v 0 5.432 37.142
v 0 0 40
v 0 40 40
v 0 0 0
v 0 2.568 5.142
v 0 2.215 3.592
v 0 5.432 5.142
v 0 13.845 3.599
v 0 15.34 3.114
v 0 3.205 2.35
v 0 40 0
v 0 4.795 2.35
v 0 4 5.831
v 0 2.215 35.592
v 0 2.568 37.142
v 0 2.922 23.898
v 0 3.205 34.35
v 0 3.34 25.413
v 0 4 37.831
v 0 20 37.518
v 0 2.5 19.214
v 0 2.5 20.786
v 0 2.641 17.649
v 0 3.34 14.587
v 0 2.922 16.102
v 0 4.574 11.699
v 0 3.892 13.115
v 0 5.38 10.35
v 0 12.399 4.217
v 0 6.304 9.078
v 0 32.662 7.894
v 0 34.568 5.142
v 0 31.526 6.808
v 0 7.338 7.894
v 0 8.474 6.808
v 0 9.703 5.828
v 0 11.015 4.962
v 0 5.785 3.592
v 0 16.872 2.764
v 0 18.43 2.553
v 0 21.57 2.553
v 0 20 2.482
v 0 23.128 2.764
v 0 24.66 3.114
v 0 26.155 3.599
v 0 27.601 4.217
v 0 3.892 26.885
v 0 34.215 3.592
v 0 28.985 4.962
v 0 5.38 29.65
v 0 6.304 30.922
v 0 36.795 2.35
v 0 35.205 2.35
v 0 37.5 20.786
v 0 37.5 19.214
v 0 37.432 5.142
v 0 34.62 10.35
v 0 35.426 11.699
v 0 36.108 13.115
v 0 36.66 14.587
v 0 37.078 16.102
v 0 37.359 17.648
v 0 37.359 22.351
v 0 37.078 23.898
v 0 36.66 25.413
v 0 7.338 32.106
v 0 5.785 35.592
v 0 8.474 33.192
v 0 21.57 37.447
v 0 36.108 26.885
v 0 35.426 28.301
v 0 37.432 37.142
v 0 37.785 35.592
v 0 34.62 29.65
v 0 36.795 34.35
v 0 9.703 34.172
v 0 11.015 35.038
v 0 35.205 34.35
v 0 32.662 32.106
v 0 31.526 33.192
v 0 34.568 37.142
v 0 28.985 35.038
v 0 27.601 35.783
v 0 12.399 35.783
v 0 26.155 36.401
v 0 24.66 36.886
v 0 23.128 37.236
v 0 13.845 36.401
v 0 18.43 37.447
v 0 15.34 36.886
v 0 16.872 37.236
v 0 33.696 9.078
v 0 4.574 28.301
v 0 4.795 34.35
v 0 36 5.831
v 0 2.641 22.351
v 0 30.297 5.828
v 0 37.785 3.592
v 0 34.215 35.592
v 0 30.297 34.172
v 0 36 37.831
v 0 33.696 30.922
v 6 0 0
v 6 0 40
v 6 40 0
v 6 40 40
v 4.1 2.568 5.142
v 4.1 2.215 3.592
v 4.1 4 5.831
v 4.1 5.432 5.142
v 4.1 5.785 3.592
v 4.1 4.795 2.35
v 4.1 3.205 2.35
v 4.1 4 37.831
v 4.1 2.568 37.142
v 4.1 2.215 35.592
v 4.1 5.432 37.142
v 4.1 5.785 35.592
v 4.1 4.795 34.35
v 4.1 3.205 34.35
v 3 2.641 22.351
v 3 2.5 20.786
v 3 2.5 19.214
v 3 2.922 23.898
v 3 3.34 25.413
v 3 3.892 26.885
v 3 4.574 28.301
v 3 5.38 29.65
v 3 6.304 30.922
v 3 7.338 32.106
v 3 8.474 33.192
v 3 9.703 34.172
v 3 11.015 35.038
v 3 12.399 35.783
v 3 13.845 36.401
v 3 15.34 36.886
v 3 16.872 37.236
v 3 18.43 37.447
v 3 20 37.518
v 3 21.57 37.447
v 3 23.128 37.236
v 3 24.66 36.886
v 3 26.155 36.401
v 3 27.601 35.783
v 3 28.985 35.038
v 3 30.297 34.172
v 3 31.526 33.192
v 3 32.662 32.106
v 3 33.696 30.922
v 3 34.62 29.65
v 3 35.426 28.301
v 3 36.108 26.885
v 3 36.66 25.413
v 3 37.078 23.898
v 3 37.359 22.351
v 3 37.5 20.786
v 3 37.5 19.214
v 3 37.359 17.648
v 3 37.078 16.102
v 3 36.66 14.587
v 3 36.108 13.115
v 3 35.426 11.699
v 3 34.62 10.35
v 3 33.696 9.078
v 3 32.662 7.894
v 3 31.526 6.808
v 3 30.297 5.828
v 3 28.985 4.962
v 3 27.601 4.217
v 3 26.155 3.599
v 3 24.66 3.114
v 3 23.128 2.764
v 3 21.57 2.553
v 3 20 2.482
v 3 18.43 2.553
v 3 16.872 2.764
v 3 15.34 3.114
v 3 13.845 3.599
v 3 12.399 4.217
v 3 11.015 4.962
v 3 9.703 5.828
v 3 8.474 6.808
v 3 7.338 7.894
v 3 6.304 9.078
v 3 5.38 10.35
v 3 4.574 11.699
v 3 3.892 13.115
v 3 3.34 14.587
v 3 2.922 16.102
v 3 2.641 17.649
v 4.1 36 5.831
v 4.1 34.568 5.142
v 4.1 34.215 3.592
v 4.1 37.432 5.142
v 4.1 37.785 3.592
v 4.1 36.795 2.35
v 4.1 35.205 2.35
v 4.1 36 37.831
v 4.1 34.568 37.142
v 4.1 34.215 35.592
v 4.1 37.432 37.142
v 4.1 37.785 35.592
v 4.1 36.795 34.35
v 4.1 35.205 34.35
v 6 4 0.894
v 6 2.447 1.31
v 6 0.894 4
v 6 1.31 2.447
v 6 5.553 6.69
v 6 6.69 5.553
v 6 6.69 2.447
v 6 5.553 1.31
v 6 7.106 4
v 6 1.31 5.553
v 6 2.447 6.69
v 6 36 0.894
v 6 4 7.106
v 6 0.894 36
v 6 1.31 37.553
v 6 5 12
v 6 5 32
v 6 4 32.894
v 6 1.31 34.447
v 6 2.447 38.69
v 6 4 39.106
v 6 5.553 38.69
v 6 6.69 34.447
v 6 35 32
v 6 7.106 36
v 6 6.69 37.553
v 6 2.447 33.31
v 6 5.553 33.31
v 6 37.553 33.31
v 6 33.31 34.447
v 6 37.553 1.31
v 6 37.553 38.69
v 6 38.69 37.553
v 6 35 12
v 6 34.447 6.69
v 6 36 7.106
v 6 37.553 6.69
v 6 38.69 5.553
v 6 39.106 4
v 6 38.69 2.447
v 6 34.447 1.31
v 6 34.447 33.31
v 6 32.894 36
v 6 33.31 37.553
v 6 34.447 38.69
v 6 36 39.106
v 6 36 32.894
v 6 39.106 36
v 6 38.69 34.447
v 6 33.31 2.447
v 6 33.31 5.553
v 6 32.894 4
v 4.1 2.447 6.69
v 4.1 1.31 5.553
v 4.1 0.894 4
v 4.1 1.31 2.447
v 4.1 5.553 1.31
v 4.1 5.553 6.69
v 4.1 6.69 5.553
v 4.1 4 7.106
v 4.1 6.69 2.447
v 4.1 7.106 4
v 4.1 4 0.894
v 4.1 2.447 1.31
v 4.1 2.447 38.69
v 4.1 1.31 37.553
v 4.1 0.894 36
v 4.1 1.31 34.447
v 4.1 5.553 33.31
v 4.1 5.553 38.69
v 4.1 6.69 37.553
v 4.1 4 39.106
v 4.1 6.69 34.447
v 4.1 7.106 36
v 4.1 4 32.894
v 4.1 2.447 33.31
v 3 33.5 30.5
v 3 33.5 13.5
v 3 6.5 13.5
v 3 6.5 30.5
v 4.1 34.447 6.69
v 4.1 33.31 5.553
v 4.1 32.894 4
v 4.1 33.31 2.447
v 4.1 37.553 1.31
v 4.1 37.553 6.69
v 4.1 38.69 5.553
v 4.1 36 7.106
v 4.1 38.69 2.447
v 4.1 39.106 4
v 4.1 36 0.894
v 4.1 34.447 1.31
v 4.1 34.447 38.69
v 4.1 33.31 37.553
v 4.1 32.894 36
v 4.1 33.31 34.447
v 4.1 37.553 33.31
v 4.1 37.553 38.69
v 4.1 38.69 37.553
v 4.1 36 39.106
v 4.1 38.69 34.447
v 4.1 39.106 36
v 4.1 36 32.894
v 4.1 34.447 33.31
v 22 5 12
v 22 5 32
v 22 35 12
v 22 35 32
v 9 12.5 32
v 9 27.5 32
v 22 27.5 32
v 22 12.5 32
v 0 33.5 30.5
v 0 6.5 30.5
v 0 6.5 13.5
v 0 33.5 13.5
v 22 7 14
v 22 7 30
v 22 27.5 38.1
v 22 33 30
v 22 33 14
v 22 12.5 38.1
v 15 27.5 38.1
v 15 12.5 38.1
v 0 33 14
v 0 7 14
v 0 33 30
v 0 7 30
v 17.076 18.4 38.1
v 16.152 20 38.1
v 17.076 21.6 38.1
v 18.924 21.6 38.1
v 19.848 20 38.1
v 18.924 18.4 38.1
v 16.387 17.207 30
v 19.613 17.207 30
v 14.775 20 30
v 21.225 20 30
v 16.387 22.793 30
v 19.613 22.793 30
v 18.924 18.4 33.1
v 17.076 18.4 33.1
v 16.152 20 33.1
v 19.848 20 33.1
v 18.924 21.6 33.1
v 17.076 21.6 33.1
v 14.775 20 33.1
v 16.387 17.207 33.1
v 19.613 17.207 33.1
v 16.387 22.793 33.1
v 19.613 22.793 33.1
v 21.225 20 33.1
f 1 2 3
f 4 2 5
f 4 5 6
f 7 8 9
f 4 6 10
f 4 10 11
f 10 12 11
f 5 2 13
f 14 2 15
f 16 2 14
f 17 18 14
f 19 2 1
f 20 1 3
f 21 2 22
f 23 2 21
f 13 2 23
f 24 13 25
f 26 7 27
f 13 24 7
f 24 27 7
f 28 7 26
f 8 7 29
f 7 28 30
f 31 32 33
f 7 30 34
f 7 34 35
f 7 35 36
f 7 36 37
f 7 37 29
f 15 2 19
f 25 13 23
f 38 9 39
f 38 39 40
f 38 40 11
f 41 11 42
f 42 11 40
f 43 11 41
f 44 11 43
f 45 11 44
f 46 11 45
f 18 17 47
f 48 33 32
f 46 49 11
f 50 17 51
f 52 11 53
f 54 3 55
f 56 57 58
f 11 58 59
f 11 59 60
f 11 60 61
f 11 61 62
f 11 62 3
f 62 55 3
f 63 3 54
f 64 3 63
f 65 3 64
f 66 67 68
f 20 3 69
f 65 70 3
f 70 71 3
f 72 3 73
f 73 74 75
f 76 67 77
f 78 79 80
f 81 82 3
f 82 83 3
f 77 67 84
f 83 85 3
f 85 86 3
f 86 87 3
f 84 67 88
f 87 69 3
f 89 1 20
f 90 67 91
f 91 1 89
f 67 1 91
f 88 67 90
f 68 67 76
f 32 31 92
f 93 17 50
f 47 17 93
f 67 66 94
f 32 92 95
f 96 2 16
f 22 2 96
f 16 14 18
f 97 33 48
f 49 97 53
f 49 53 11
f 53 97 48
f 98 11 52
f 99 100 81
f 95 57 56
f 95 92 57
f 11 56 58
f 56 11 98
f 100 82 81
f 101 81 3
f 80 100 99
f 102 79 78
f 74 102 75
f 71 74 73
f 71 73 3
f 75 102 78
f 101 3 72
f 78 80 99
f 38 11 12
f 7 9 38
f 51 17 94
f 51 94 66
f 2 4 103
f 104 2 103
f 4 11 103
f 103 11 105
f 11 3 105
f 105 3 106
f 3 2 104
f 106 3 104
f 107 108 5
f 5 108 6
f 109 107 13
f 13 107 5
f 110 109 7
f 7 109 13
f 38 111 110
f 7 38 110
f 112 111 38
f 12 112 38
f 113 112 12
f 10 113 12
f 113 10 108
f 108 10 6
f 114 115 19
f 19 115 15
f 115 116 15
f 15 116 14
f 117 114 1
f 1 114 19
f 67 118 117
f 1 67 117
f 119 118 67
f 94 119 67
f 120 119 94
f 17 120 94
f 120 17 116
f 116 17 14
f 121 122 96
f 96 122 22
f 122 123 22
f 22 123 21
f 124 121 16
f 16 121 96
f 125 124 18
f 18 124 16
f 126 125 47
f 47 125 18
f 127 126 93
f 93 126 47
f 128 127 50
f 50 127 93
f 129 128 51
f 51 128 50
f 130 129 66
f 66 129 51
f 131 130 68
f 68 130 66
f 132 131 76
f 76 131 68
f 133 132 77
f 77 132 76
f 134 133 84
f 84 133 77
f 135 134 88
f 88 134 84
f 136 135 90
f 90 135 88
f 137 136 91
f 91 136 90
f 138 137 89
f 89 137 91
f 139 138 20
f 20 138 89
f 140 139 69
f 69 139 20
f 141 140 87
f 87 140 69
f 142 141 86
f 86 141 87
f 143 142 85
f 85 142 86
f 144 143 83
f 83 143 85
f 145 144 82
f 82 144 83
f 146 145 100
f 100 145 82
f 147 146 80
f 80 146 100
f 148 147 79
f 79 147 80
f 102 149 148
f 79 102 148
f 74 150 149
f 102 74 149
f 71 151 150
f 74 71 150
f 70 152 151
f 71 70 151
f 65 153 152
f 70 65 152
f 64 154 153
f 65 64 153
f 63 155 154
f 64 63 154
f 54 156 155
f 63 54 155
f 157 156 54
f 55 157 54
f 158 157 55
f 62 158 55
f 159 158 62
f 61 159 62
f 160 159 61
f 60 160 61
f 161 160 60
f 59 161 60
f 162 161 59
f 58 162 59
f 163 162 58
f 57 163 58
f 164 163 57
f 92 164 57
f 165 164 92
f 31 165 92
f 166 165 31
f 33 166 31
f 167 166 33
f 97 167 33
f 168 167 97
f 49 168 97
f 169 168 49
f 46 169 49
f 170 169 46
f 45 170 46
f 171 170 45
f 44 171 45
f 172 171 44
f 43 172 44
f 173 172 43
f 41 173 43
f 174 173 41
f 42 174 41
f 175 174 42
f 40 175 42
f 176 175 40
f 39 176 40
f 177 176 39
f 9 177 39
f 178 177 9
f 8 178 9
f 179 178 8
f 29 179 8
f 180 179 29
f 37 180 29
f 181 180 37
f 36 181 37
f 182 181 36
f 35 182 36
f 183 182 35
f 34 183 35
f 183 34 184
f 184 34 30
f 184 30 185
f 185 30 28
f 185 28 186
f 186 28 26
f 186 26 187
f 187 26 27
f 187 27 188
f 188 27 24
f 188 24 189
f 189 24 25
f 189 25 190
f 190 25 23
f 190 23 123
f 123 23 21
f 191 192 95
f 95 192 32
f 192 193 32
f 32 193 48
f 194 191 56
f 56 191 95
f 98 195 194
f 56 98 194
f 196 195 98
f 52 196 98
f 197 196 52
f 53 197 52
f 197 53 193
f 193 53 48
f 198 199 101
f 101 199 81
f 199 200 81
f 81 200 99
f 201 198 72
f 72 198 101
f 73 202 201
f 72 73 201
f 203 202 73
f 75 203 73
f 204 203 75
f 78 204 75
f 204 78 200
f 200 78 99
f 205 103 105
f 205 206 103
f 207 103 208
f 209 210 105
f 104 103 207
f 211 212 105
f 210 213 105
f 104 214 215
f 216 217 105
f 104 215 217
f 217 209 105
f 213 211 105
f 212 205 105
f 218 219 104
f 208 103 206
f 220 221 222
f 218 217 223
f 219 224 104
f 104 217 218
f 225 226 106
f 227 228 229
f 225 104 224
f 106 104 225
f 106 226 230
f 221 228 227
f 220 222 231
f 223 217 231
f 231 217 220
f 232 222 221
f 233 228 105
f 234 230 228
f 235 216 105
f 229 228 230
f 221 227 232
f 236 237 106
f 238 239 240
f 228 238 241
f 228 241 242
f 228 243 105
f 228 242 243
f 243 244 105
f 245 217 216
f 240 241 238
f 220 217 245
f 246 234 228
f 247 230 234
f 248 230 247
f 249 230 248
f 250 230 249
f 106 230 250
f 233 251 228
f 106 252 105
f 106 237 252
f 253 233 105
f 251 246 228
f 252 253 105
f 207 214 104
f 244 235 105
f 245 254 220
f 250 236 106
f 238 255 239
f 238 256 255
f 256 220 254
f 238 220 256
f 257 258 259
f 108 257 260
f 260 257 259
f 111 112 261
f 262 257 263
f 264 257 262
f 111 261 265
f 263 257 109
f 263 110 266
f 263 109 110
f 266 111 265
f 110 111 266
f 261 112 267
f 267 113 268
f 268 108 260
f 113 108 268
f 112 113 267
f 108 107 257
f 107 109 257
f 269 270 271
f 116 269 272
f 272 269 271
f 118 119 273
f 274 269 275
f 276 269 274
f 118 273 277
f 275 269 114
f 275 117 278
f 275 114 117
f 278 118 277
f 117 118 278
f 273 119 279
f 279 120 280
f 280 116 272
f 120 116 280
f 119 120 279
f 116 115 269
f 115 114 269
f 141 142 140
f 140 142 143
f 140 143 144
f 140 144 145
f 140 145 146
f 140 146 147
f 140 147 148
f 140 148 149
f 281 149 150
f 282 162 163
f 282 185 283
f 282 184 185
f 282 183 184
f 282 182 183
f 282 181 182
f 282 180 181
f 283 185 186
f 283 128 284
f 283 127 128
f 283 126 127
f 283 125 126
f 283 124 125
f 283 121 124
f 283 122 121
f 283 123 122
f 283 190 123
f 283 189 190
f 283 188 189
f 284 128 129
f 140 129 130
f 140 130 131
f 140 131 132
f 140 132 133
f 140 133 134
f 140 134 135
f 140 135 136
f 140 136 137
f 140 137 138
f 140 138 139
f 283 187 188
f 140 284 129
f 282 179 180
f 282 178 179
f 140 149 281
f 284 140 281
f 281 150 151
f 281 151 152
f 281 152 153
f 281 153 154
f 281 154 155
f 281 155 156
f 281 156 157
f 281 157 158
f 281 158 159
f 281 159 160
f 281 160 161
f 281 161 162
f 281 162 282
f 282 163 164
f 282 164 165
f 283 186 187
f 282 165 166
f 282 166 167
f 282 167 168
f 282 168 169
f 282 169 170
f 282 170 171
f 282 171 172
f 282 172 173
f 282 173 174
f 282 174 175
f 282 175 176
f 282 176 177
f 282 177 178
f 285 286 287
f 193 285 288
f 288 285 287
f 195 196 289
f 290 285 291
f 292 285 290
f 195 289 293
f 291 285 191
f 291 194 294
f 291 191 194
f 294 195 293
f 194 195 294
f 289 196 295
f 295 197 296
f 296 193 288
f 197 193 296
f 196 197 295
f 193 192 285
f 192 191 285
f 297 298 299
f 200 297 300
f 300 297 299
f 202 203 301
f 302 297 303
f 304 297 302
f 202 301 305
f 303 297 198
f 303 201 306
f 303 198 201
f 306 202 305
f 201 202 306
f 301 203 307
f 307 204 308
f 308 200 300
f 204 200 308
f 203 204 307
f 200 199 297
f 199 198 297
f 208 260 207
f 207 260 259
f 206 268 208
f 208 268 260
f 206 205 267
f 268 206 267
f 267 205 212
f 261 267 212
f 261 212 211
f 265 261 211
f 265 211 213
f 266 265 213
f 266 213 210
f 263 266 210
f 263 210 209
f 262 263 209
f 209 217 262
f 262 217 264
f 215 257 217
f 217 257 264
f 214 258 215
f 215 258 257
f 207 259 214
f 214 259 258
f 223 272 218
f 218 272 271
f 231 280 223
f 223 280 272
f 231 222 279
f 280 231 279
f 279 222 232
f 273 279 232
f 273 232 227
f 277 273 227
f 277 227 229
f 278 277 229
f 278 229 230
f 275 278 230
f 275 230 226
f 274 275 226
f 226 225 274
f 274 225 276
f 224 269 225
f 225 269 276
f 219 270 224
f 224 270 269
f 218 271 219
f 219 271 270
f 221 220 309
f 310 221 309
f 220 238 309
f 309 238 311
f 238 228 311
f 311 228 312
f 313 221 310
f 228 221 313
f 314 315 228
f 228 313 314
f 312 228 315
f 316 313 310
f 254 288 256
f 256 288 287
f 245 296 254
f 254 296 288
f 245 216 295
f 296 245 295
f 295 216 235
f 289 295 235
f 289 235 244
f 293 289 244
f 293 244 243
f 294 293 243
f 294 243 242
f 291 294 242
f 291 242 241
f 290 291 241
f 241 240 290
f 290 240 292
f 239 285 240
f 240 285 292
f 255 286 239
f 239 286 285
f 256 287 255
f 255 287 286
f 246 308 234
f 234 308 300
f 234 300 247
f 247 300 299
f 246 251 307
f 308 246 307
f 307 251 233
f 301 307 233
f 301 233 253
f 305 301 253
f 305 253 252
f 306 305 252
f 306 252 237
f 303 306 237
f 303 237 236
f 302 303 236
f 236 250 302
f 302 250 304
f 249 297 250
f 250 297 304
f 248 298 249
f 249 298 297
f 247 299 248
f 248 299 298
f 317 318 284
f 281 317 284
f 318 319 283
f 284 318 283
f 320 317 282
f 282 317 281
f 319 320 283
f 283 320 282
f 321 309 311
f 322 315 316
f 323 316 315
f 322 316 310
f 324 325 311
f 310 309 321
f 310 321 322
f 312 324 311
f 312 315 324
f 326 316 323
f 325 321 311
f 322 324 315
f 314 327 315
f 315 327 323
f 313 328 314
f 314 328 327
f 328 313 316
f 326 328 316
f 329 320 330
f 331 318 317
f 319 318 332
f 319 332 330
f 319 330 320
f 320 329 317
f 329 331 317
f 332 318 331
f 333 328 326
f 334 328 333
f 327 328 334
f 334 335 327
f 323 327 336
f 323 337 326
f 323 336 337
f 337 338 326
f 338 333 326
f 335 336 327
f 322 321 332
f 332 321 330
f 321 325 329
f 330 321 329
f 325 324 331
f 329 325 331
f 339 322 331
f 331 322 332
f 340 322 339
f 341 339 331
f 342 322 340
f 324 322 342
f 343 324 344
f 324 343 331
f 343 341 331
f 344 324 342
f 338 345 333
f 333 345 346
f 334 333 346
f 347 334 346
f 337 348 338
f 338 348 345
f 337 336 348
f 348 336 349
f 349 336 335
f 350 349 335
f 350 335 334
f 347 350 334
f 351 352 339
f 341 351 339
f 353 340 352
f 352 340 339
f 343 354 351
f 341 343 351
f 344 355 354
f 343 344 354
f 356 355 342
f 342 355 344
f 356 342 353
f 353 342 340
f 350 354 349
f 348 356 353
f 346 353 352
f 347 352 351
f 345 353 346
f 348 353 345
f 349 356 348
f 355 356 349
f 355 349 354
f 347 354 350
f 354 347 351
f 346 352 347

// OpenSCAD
//-----------------------------------------------------------------------------------
// hotend fan
// mounted on left side of Mendel90 x-carriage
// for cooling the hotend insulator (always on)
//
// https://github.com/Stemer114/things/tree/master/reprap 
//
// (c) 2013 by Stemer114@gmail.com
// License: licensed under the Creative Commons - GNU GPL license.
//          http://www.gnu.org/licenses/gpl-2.0.html
//-----------------------------------------------------------------------------------

//-----------------------------------------------------------------------------------
//display settings
//-----------------------------------------------------------------------------------

//color settings

//-----------------------------------------------------------------------------------
//global configuration settings
//-----------------------------------------------------------------------------------
de = 0.1; //delta param, so differences do not become manifold
fn_hole = 12;  //fn setting for round holes/bores (polyhole)
ex = 0;  //offset for Explosivdarstellung, set to 0 for none
nozzle_size = 0.5;  //needed for thickness of support structure

//-----------------------------------------------------------------------------------
// parametric settings (in mm)
//-----------------------------------------------------------------------------------

//duct with mounting bracket - P01xx
P0110 = 30;  //width
P0111 = 20;  //height
P0112 = 16;  //length
P0115 = 2;   //wall thickness
P0130 = 3;   //bracket offset from back of mounting plate
P0131 = 6;   //bracket height (P0221 ./. thickness of x carriage)
P0132 = P0112-P0130;  //bracket foot length
P0133 = P0132-P0131;      //bracket top length
echo("bracket foot length", P0132);
echo("bracket top length",  P0133);
P0135 = 15;           //bracket width
P0140 = 3.2;          //mounting hole diameter
P0141 = P0131+P0115;  //mounting hole length
P0142 = 4;            //mounting hole offset from edge
P0145 = 5.5;     //nut trap wrench size
P0146 = 3;       //nut trap length

//mounting plate - P02xx
P0210 = 40;  //width
P0211 = 40;  //height
P0212 = 6;   //thickness
P0220 = 5;   //offset width direction
P0221 = 8;   //offset height direction
P0230 = 3.3; //fan mounting hole diameter
P0231 = 4;   //fan mounting hole offset from edges
P0232 = 6;   //screw head diameter
P0233 = 2;   //screw head depth
P0240 = 35;  //fan cutout diameter
P0241 = 3;   //fan cutout depth
//support structure for duct
//to be broken away after printing
P0250 = nozzle_size;   //thickness (filament thickness)



//-----------------------------------------------------------------------------------
// libraries
//-----------------------------------------------------------------------------------
use <MCAD/polyholes.scad>

//-----------------------------------------------------------------------------------
// main rendering
//-----------------------------------------------------------------------------------

FanMount();
SupportStructure();


//-----------------------------------------------------------------------------------
// modules
//-----------------------------------------------------------------------------------

module FanMount()
{
    difference()
    {
        union()
        {
            //mounting plate
            translate([0, 0, 0])
                cube([P0212, P0210, P0211], center=false);

            //duct body
            translate([P0212, P0220, P0211-P0111-P0221])
                cube([P0112, P0110, P0111], center=false);

            //mounting bracket (mounting to x-carriage)
            hull()
            {
                //bottom plate
                translate([P0212+P0130, P0220+P0110/2-P0135/2, P0211-P0221-de])
                    cube([P0132, P0135, de]);
                //top plate
                translate([P0212+P0112-P0133, P0220+P0110/2-P0135/2, P0211-P0221+P0131])
                    cube([P0133, P0135, de]);
            }

//# cylinder(r = P0145 / 2 / cos(180 / 6) + 0.05, h=P0146+2*de, $fn=6);


        }  //end union

        union()
        {
            //cutout
            //(through mounting plate and duct)
            translate([-de, P0220+P0115, P0211-P0111-P0221+P0115])
                cube([P0212+P0112+2*de, P0110-2*P0115, P0111-2*P0115], center=false);

            //fan mounting holes
            translate([-de, P0231, P0231]) rotate([0, 90, 0]) polyhole(h=P0212+2*de, d=P0230);
            translate([-de, P0210-P0231, P0231]) rotate([0, 90, 0]) polyhole(h=P0212+2*de, d=P0230);
            translate([-de, P0210-P0231, P0211-P0231]) rotate([0, 90, 0]) polyhole(h=P0212+2*de, d=P0230);
            translate([-de, P0231, P0211-P0231]) rotate([0, 90, 0]) polyhole(h=P0212+2*de, d=P0230);
            //fan mounting holes - screw heads
            translate([P0212-P0233+de, P0231, P0231]) rotate([0, 90, 0]) polyhole(h=P0233+de, d=P0232);
            translate([P0212-P0233+de, P0210-P0231, P0231]) rotate([0, 90, 0]) polyhole(h=P0233+de, d=P0232);
            translate([P0212-P0233+de, P0210-P0231, P0211-P0231]) rotate([0, 90, 0]) polyhole(h=P0233+de, d=P0232);
            translate([P0212-P0233+de, P0231, P0211-P0231]) rotate([0, 90, 0]) polyhole(h=P0233+de, d=P0232);


            //fan cutout
            translate([-de, P0210/2, P0211/2]) 
                rotate([0, 90, 0]) 
                polyhole(h=P0241+de, d=P0240);

            //mounting hole in bracket
            translate([P0212+P0112-P0142, P0220+P0110/2, P0211-P0221-P0115-de])
                union()
                {
                    //bore
 polyhole(h=P0141+3*de, d=P0140);
                    //nut trap
            //source: http://forum.openscad.org/Drawing-tools-td4551i20.html
 cylinder(r = P0145 / 2 / cos(180 / 6) + 0.05, h=P0146+2*de, $fn=6);

                }

 
        } //end union

    }  //end difference

}  //end module 


module SupportStructure()
{

    difference()
    {
    translate([0, P0220+P0115-P0250, P0211-P0221-P0111+P0115-P0250])
        cube([P0212, P0110-2*P0115+2*P0250, P0111-2*P0115+2*P0250], center=false);

    translate([0, P0220+P0115-P0250, P0211-P0221-P0111+P0115-P0250])
        translate([-de, P0250, P0250])
        cube([P0212+2*de, P0110-2*P0115, P0111-2*P0115], center=false);
    }

}


//-----------------------------------------------------------------------------------
// utility functions
//-----------------------------------------------------------------------------------
